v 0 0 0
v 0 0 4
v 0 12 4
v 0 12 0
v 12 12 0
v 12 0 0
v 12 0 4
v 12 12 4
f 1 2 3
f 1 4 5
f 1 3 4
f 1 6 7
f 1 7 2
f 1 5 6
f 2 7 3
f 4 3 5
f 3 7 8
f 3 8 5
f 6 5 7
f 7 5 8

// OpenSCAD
/* Warning, this is a very basic generator with a lot of approximation 
input data : [B2QFN, M7A, 12x12x4mm, 64, , A, C04-01058A]
generated by com.zoubworld.electronics.cad.model3d.Basic
Date : Sun Feb 15 10:50:49 CET 2026
*/

//body
color("black")
translate([0,0,0])
cube([12.0,12.0,4.0], center=false);
